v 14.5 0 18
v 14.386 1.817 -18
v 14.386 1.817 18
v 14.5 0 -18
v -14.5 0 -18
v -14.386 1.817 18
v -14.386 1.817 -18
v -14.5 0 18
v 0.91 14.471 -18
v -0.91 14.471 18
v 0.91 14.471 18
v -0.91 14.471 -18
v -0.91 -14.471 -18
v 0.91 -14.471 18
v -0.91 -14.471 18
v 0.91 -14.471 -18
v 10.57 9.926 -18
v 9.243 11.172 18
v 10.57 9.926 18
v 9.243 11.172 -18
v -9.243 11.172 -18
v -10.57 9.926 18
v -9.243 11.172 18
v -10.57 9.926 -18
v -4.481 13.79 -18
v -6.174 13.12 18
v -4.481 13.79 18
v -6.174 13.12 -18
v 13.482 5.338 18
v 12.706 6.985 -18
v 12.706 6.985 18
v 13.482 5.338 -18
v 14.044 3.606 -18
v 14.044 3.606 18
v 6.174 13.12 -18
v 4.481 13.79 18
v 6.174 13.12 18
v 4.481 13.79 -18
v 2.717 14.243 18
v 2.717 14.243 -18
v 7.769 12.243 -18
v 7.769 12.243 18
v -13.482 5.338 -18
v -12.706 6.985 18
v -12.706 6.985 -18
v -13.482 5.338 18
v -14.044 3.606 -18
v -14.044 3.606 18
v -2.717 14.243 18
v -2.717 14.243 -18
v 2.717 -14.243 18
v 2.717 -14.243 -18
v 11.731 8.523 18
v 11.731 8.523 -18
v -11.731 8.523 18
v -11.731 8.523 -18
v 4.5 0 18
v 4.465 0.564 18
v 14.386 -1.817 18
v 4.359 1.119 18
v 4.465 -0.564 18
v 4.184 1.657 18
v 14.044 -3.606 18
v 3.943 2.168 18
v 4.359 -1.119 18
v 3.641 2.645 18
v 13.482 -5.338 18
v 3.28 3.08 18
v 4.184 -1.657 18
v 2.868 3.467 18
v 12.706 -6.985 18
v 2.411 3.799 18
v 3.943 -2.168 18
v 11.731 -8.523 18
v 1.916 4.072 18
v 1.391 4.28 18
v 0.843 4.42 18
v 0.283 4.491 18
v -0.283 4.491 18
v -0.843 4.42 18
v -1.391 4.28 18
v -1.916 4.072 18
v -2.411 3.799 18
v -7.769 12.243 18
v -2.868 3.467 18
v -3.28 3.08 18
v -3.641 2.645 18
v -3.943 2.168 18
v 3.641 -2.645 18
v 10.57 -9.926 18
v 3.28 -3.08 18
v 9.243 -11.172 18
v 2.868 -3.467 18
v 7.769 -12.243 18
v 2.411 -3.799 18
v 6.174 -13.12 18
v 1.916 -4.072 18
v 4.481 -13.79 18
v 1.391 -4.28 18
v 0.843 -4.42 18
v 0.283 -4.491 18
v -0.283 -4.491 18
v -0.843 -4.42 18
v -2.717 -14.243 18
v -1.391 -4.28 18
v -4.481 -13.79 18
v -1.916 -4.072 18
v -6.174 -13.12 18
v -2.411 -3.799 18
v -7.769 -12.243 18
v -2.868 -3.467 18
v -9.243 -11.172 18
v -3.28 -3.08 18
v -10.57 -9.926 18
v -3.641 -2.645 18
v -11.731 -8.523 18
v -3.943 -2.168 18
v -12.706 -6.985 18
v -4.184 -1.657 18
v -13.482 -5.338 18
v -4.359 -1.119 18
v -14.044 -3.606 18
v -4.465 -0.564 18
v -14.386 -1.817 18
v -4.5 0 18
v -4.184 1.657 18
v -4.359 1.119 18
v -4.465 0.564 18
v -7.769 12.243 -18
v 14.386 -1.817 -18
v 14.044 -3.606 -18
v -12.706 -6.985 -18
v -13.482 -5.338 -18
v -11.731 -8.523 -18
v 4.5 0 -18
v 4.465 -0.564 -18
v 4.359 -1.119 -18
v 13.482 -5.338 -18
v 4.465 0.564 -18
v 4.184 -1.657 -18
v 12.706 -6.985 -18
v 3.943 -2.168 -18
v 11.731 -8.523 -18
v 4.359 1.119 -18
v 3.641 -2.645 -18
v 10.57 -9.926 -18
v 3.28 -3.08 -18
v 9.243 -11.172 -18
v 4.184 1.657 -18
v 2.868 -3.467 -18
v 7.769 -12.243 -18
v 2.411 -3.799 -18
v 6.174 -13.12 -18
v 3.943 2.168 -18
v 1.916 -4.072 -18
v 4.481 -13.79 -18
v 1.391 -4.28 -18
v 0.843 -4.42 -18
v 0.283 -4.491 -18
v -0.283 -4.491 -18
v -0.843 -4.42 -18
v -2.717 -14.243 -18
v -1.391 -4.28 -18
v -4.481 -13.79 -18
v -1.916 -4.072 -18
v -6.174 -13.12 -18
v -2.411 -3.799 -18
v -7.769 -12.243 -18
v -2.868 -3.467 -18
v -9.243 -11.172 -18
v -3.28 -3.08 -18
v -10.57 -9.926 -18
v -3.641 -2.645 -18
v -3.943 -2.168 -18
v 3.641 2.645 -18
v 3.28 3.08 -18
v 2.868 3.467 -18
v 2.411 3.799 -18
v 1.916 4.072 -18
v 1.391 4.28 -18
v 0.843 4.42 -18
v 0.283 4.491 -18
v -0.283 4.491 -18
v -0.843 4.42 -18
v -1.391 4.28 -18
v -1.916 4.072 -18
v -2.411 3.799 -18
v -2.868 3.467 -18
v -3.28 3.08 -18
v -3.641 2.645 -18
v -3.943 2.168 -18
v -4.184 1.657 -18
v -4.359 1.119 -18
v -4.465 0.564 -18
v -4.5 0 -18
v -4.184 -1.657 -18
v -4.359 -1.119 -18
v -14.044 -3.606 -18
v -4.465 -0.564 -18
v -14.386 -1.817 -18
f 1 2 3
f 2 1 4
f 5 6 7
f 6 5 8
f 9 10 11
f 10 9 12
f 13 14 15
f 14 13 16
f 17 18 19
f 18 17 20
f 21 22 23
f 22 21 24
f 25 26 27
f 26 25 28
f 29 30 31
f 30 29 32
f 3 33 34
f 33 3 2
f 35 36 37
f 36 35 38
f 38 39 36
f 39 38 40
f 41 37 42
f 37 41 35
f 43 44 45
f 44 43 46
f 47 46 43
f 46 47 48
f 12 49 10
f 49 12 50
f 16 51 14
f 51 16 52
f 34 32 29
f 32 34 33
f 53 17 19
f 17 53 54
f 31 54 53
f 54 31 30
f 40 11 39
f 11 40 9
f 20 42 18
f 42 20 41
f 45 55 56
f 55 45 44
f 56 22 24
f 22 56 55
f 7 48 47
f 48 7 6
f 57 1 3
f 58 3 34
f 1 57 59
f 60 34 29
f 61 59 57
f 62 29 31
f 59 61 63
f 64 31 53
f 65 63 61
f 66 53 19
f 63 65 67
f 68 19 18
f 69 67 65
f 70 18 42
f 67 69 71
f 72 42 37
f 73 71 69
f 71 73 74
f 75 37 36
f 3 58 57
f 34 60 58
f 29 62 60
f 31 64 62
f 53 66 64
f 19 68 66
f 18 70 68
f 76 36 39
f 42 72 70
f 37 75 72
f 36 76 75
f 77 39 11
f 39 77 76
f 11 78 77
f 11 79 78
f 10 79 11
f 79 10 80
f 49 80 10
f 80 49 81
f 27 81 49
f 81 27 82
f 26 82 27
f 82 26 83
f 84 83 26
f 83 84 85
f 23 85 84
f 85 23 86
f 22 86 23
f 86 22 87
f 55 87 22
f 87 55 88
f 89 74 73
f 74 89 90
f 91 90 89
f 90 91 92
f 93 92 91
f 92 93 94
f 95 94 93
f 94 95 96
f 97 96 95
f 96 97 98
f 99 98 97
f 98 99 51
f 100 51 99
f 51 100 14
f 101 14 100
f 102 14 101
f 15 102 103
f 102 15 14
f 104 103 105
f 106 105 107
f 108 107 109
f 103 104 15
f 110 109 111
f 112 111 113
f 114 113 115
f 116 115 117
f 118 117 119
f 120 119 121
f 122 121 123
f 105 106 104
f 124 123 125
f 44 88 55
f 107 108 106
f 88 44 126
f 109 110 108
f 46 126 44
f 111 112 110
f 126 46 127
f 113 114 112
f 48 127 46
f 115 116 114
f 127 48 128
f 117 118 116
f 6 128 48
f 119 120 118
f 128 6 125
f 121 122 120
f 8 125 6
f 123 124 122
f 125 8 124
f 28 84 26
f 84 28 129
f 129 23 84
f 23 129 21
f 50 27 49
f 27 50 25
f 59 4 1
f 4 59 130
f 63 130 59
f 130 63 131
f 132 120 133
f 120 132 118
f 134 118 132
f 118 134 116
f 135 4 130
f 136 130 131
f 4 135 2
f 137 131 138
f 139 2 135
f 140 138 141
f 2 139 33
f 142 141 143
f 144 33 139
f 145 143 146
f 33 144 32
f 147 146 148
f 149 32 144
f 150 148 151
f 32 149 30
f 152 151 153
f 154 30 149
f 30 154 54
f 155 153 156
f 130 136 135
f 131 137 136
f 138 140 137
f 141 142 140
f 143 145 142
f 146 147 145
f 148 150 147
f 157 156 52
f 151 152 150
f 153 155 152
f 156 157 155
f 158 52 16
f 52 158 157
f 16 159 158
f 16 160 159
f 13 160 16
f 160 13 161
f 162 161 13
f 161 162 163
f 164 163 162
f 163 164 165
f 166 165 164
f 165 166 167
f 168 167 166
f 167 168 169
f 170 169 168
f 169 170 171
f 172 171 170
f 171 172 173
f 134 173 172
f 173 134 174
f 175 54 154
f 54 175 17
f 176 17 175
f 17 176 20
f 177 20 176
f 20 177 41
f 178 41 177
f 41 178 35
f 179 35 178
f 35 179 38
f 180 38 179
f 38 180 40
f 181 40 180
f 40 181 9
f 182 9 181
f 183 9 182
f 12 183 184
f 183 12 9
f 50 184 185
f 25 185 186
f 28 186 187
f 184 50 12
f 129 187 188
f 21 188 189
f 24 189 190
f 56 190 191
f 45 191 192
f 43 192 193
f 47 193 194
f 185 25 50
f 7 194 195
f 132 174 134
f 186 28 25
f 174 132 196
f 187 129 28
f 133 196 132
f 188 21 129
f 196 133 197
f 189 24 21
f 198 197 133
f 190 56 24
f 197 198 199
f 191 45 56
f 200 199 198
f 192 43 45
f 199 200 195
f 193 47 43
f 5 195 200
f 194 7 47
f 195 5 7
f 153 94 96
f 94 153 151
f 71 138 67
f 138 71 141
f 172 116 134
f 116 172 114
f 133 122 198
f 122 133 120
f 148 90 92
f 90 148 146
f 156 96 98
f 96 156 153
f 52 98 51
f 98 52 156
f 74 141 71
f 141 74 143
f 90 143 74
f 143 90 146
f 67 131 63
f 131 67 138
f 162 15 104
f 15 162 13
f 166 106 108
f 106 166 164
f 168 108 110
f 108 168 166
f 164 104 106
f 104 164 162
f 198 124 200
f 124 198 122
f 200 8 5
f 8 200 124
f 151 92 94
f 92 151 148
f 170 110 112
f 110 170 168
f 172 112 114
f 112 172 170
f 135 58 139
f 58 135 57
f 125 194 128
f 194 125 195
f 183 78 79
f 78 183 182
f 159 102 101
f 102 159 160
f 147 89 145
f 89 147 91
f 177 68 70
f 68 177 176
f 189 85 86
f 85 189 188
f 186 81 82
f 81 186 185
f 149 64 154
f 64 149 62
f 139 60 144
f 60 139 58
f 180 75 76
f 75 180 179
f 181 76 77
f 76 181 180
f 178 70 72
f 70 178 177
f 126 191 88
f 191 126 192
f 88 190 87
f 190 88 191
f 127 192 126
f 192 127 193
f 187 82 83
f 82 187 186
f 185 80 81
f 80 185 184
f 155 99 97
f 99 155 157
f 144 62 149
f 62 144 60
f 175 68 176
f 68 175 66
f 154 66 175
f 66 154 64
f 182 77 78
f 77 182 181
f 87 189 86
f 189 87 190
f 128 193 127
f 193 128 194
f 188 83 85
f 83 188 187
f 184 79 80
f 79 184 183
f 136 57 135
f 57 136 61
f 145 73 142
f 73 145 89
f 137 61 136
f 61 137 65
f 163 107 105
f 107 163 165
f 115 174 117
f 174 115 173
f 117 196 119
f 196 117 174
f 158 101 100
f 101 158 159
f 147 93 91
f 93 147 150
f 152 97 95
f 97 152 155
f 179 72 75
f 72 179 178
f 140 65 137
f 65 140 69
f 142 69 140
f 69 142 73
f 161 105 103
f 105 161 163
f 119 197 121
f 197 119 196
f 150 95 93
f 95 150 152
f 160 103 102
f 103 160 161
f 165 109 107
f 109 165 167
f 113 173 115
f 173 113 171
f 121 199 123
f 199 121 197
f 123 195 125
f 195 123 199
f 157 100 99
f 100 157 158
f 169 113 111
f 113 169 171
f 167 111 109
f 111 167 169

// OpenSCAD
$fn = 50;


difference() {
	union() {
		translate(v = [0, 0, -18.0000000000]) {
			cylinder(h = 36, r = 14.5000000000);
		}
	}
	union() {
		translate(v = [0, 0, -100.0000000000]) {
			cylinder(h = 200, r = 4.5000000000);
		}
	}
}
